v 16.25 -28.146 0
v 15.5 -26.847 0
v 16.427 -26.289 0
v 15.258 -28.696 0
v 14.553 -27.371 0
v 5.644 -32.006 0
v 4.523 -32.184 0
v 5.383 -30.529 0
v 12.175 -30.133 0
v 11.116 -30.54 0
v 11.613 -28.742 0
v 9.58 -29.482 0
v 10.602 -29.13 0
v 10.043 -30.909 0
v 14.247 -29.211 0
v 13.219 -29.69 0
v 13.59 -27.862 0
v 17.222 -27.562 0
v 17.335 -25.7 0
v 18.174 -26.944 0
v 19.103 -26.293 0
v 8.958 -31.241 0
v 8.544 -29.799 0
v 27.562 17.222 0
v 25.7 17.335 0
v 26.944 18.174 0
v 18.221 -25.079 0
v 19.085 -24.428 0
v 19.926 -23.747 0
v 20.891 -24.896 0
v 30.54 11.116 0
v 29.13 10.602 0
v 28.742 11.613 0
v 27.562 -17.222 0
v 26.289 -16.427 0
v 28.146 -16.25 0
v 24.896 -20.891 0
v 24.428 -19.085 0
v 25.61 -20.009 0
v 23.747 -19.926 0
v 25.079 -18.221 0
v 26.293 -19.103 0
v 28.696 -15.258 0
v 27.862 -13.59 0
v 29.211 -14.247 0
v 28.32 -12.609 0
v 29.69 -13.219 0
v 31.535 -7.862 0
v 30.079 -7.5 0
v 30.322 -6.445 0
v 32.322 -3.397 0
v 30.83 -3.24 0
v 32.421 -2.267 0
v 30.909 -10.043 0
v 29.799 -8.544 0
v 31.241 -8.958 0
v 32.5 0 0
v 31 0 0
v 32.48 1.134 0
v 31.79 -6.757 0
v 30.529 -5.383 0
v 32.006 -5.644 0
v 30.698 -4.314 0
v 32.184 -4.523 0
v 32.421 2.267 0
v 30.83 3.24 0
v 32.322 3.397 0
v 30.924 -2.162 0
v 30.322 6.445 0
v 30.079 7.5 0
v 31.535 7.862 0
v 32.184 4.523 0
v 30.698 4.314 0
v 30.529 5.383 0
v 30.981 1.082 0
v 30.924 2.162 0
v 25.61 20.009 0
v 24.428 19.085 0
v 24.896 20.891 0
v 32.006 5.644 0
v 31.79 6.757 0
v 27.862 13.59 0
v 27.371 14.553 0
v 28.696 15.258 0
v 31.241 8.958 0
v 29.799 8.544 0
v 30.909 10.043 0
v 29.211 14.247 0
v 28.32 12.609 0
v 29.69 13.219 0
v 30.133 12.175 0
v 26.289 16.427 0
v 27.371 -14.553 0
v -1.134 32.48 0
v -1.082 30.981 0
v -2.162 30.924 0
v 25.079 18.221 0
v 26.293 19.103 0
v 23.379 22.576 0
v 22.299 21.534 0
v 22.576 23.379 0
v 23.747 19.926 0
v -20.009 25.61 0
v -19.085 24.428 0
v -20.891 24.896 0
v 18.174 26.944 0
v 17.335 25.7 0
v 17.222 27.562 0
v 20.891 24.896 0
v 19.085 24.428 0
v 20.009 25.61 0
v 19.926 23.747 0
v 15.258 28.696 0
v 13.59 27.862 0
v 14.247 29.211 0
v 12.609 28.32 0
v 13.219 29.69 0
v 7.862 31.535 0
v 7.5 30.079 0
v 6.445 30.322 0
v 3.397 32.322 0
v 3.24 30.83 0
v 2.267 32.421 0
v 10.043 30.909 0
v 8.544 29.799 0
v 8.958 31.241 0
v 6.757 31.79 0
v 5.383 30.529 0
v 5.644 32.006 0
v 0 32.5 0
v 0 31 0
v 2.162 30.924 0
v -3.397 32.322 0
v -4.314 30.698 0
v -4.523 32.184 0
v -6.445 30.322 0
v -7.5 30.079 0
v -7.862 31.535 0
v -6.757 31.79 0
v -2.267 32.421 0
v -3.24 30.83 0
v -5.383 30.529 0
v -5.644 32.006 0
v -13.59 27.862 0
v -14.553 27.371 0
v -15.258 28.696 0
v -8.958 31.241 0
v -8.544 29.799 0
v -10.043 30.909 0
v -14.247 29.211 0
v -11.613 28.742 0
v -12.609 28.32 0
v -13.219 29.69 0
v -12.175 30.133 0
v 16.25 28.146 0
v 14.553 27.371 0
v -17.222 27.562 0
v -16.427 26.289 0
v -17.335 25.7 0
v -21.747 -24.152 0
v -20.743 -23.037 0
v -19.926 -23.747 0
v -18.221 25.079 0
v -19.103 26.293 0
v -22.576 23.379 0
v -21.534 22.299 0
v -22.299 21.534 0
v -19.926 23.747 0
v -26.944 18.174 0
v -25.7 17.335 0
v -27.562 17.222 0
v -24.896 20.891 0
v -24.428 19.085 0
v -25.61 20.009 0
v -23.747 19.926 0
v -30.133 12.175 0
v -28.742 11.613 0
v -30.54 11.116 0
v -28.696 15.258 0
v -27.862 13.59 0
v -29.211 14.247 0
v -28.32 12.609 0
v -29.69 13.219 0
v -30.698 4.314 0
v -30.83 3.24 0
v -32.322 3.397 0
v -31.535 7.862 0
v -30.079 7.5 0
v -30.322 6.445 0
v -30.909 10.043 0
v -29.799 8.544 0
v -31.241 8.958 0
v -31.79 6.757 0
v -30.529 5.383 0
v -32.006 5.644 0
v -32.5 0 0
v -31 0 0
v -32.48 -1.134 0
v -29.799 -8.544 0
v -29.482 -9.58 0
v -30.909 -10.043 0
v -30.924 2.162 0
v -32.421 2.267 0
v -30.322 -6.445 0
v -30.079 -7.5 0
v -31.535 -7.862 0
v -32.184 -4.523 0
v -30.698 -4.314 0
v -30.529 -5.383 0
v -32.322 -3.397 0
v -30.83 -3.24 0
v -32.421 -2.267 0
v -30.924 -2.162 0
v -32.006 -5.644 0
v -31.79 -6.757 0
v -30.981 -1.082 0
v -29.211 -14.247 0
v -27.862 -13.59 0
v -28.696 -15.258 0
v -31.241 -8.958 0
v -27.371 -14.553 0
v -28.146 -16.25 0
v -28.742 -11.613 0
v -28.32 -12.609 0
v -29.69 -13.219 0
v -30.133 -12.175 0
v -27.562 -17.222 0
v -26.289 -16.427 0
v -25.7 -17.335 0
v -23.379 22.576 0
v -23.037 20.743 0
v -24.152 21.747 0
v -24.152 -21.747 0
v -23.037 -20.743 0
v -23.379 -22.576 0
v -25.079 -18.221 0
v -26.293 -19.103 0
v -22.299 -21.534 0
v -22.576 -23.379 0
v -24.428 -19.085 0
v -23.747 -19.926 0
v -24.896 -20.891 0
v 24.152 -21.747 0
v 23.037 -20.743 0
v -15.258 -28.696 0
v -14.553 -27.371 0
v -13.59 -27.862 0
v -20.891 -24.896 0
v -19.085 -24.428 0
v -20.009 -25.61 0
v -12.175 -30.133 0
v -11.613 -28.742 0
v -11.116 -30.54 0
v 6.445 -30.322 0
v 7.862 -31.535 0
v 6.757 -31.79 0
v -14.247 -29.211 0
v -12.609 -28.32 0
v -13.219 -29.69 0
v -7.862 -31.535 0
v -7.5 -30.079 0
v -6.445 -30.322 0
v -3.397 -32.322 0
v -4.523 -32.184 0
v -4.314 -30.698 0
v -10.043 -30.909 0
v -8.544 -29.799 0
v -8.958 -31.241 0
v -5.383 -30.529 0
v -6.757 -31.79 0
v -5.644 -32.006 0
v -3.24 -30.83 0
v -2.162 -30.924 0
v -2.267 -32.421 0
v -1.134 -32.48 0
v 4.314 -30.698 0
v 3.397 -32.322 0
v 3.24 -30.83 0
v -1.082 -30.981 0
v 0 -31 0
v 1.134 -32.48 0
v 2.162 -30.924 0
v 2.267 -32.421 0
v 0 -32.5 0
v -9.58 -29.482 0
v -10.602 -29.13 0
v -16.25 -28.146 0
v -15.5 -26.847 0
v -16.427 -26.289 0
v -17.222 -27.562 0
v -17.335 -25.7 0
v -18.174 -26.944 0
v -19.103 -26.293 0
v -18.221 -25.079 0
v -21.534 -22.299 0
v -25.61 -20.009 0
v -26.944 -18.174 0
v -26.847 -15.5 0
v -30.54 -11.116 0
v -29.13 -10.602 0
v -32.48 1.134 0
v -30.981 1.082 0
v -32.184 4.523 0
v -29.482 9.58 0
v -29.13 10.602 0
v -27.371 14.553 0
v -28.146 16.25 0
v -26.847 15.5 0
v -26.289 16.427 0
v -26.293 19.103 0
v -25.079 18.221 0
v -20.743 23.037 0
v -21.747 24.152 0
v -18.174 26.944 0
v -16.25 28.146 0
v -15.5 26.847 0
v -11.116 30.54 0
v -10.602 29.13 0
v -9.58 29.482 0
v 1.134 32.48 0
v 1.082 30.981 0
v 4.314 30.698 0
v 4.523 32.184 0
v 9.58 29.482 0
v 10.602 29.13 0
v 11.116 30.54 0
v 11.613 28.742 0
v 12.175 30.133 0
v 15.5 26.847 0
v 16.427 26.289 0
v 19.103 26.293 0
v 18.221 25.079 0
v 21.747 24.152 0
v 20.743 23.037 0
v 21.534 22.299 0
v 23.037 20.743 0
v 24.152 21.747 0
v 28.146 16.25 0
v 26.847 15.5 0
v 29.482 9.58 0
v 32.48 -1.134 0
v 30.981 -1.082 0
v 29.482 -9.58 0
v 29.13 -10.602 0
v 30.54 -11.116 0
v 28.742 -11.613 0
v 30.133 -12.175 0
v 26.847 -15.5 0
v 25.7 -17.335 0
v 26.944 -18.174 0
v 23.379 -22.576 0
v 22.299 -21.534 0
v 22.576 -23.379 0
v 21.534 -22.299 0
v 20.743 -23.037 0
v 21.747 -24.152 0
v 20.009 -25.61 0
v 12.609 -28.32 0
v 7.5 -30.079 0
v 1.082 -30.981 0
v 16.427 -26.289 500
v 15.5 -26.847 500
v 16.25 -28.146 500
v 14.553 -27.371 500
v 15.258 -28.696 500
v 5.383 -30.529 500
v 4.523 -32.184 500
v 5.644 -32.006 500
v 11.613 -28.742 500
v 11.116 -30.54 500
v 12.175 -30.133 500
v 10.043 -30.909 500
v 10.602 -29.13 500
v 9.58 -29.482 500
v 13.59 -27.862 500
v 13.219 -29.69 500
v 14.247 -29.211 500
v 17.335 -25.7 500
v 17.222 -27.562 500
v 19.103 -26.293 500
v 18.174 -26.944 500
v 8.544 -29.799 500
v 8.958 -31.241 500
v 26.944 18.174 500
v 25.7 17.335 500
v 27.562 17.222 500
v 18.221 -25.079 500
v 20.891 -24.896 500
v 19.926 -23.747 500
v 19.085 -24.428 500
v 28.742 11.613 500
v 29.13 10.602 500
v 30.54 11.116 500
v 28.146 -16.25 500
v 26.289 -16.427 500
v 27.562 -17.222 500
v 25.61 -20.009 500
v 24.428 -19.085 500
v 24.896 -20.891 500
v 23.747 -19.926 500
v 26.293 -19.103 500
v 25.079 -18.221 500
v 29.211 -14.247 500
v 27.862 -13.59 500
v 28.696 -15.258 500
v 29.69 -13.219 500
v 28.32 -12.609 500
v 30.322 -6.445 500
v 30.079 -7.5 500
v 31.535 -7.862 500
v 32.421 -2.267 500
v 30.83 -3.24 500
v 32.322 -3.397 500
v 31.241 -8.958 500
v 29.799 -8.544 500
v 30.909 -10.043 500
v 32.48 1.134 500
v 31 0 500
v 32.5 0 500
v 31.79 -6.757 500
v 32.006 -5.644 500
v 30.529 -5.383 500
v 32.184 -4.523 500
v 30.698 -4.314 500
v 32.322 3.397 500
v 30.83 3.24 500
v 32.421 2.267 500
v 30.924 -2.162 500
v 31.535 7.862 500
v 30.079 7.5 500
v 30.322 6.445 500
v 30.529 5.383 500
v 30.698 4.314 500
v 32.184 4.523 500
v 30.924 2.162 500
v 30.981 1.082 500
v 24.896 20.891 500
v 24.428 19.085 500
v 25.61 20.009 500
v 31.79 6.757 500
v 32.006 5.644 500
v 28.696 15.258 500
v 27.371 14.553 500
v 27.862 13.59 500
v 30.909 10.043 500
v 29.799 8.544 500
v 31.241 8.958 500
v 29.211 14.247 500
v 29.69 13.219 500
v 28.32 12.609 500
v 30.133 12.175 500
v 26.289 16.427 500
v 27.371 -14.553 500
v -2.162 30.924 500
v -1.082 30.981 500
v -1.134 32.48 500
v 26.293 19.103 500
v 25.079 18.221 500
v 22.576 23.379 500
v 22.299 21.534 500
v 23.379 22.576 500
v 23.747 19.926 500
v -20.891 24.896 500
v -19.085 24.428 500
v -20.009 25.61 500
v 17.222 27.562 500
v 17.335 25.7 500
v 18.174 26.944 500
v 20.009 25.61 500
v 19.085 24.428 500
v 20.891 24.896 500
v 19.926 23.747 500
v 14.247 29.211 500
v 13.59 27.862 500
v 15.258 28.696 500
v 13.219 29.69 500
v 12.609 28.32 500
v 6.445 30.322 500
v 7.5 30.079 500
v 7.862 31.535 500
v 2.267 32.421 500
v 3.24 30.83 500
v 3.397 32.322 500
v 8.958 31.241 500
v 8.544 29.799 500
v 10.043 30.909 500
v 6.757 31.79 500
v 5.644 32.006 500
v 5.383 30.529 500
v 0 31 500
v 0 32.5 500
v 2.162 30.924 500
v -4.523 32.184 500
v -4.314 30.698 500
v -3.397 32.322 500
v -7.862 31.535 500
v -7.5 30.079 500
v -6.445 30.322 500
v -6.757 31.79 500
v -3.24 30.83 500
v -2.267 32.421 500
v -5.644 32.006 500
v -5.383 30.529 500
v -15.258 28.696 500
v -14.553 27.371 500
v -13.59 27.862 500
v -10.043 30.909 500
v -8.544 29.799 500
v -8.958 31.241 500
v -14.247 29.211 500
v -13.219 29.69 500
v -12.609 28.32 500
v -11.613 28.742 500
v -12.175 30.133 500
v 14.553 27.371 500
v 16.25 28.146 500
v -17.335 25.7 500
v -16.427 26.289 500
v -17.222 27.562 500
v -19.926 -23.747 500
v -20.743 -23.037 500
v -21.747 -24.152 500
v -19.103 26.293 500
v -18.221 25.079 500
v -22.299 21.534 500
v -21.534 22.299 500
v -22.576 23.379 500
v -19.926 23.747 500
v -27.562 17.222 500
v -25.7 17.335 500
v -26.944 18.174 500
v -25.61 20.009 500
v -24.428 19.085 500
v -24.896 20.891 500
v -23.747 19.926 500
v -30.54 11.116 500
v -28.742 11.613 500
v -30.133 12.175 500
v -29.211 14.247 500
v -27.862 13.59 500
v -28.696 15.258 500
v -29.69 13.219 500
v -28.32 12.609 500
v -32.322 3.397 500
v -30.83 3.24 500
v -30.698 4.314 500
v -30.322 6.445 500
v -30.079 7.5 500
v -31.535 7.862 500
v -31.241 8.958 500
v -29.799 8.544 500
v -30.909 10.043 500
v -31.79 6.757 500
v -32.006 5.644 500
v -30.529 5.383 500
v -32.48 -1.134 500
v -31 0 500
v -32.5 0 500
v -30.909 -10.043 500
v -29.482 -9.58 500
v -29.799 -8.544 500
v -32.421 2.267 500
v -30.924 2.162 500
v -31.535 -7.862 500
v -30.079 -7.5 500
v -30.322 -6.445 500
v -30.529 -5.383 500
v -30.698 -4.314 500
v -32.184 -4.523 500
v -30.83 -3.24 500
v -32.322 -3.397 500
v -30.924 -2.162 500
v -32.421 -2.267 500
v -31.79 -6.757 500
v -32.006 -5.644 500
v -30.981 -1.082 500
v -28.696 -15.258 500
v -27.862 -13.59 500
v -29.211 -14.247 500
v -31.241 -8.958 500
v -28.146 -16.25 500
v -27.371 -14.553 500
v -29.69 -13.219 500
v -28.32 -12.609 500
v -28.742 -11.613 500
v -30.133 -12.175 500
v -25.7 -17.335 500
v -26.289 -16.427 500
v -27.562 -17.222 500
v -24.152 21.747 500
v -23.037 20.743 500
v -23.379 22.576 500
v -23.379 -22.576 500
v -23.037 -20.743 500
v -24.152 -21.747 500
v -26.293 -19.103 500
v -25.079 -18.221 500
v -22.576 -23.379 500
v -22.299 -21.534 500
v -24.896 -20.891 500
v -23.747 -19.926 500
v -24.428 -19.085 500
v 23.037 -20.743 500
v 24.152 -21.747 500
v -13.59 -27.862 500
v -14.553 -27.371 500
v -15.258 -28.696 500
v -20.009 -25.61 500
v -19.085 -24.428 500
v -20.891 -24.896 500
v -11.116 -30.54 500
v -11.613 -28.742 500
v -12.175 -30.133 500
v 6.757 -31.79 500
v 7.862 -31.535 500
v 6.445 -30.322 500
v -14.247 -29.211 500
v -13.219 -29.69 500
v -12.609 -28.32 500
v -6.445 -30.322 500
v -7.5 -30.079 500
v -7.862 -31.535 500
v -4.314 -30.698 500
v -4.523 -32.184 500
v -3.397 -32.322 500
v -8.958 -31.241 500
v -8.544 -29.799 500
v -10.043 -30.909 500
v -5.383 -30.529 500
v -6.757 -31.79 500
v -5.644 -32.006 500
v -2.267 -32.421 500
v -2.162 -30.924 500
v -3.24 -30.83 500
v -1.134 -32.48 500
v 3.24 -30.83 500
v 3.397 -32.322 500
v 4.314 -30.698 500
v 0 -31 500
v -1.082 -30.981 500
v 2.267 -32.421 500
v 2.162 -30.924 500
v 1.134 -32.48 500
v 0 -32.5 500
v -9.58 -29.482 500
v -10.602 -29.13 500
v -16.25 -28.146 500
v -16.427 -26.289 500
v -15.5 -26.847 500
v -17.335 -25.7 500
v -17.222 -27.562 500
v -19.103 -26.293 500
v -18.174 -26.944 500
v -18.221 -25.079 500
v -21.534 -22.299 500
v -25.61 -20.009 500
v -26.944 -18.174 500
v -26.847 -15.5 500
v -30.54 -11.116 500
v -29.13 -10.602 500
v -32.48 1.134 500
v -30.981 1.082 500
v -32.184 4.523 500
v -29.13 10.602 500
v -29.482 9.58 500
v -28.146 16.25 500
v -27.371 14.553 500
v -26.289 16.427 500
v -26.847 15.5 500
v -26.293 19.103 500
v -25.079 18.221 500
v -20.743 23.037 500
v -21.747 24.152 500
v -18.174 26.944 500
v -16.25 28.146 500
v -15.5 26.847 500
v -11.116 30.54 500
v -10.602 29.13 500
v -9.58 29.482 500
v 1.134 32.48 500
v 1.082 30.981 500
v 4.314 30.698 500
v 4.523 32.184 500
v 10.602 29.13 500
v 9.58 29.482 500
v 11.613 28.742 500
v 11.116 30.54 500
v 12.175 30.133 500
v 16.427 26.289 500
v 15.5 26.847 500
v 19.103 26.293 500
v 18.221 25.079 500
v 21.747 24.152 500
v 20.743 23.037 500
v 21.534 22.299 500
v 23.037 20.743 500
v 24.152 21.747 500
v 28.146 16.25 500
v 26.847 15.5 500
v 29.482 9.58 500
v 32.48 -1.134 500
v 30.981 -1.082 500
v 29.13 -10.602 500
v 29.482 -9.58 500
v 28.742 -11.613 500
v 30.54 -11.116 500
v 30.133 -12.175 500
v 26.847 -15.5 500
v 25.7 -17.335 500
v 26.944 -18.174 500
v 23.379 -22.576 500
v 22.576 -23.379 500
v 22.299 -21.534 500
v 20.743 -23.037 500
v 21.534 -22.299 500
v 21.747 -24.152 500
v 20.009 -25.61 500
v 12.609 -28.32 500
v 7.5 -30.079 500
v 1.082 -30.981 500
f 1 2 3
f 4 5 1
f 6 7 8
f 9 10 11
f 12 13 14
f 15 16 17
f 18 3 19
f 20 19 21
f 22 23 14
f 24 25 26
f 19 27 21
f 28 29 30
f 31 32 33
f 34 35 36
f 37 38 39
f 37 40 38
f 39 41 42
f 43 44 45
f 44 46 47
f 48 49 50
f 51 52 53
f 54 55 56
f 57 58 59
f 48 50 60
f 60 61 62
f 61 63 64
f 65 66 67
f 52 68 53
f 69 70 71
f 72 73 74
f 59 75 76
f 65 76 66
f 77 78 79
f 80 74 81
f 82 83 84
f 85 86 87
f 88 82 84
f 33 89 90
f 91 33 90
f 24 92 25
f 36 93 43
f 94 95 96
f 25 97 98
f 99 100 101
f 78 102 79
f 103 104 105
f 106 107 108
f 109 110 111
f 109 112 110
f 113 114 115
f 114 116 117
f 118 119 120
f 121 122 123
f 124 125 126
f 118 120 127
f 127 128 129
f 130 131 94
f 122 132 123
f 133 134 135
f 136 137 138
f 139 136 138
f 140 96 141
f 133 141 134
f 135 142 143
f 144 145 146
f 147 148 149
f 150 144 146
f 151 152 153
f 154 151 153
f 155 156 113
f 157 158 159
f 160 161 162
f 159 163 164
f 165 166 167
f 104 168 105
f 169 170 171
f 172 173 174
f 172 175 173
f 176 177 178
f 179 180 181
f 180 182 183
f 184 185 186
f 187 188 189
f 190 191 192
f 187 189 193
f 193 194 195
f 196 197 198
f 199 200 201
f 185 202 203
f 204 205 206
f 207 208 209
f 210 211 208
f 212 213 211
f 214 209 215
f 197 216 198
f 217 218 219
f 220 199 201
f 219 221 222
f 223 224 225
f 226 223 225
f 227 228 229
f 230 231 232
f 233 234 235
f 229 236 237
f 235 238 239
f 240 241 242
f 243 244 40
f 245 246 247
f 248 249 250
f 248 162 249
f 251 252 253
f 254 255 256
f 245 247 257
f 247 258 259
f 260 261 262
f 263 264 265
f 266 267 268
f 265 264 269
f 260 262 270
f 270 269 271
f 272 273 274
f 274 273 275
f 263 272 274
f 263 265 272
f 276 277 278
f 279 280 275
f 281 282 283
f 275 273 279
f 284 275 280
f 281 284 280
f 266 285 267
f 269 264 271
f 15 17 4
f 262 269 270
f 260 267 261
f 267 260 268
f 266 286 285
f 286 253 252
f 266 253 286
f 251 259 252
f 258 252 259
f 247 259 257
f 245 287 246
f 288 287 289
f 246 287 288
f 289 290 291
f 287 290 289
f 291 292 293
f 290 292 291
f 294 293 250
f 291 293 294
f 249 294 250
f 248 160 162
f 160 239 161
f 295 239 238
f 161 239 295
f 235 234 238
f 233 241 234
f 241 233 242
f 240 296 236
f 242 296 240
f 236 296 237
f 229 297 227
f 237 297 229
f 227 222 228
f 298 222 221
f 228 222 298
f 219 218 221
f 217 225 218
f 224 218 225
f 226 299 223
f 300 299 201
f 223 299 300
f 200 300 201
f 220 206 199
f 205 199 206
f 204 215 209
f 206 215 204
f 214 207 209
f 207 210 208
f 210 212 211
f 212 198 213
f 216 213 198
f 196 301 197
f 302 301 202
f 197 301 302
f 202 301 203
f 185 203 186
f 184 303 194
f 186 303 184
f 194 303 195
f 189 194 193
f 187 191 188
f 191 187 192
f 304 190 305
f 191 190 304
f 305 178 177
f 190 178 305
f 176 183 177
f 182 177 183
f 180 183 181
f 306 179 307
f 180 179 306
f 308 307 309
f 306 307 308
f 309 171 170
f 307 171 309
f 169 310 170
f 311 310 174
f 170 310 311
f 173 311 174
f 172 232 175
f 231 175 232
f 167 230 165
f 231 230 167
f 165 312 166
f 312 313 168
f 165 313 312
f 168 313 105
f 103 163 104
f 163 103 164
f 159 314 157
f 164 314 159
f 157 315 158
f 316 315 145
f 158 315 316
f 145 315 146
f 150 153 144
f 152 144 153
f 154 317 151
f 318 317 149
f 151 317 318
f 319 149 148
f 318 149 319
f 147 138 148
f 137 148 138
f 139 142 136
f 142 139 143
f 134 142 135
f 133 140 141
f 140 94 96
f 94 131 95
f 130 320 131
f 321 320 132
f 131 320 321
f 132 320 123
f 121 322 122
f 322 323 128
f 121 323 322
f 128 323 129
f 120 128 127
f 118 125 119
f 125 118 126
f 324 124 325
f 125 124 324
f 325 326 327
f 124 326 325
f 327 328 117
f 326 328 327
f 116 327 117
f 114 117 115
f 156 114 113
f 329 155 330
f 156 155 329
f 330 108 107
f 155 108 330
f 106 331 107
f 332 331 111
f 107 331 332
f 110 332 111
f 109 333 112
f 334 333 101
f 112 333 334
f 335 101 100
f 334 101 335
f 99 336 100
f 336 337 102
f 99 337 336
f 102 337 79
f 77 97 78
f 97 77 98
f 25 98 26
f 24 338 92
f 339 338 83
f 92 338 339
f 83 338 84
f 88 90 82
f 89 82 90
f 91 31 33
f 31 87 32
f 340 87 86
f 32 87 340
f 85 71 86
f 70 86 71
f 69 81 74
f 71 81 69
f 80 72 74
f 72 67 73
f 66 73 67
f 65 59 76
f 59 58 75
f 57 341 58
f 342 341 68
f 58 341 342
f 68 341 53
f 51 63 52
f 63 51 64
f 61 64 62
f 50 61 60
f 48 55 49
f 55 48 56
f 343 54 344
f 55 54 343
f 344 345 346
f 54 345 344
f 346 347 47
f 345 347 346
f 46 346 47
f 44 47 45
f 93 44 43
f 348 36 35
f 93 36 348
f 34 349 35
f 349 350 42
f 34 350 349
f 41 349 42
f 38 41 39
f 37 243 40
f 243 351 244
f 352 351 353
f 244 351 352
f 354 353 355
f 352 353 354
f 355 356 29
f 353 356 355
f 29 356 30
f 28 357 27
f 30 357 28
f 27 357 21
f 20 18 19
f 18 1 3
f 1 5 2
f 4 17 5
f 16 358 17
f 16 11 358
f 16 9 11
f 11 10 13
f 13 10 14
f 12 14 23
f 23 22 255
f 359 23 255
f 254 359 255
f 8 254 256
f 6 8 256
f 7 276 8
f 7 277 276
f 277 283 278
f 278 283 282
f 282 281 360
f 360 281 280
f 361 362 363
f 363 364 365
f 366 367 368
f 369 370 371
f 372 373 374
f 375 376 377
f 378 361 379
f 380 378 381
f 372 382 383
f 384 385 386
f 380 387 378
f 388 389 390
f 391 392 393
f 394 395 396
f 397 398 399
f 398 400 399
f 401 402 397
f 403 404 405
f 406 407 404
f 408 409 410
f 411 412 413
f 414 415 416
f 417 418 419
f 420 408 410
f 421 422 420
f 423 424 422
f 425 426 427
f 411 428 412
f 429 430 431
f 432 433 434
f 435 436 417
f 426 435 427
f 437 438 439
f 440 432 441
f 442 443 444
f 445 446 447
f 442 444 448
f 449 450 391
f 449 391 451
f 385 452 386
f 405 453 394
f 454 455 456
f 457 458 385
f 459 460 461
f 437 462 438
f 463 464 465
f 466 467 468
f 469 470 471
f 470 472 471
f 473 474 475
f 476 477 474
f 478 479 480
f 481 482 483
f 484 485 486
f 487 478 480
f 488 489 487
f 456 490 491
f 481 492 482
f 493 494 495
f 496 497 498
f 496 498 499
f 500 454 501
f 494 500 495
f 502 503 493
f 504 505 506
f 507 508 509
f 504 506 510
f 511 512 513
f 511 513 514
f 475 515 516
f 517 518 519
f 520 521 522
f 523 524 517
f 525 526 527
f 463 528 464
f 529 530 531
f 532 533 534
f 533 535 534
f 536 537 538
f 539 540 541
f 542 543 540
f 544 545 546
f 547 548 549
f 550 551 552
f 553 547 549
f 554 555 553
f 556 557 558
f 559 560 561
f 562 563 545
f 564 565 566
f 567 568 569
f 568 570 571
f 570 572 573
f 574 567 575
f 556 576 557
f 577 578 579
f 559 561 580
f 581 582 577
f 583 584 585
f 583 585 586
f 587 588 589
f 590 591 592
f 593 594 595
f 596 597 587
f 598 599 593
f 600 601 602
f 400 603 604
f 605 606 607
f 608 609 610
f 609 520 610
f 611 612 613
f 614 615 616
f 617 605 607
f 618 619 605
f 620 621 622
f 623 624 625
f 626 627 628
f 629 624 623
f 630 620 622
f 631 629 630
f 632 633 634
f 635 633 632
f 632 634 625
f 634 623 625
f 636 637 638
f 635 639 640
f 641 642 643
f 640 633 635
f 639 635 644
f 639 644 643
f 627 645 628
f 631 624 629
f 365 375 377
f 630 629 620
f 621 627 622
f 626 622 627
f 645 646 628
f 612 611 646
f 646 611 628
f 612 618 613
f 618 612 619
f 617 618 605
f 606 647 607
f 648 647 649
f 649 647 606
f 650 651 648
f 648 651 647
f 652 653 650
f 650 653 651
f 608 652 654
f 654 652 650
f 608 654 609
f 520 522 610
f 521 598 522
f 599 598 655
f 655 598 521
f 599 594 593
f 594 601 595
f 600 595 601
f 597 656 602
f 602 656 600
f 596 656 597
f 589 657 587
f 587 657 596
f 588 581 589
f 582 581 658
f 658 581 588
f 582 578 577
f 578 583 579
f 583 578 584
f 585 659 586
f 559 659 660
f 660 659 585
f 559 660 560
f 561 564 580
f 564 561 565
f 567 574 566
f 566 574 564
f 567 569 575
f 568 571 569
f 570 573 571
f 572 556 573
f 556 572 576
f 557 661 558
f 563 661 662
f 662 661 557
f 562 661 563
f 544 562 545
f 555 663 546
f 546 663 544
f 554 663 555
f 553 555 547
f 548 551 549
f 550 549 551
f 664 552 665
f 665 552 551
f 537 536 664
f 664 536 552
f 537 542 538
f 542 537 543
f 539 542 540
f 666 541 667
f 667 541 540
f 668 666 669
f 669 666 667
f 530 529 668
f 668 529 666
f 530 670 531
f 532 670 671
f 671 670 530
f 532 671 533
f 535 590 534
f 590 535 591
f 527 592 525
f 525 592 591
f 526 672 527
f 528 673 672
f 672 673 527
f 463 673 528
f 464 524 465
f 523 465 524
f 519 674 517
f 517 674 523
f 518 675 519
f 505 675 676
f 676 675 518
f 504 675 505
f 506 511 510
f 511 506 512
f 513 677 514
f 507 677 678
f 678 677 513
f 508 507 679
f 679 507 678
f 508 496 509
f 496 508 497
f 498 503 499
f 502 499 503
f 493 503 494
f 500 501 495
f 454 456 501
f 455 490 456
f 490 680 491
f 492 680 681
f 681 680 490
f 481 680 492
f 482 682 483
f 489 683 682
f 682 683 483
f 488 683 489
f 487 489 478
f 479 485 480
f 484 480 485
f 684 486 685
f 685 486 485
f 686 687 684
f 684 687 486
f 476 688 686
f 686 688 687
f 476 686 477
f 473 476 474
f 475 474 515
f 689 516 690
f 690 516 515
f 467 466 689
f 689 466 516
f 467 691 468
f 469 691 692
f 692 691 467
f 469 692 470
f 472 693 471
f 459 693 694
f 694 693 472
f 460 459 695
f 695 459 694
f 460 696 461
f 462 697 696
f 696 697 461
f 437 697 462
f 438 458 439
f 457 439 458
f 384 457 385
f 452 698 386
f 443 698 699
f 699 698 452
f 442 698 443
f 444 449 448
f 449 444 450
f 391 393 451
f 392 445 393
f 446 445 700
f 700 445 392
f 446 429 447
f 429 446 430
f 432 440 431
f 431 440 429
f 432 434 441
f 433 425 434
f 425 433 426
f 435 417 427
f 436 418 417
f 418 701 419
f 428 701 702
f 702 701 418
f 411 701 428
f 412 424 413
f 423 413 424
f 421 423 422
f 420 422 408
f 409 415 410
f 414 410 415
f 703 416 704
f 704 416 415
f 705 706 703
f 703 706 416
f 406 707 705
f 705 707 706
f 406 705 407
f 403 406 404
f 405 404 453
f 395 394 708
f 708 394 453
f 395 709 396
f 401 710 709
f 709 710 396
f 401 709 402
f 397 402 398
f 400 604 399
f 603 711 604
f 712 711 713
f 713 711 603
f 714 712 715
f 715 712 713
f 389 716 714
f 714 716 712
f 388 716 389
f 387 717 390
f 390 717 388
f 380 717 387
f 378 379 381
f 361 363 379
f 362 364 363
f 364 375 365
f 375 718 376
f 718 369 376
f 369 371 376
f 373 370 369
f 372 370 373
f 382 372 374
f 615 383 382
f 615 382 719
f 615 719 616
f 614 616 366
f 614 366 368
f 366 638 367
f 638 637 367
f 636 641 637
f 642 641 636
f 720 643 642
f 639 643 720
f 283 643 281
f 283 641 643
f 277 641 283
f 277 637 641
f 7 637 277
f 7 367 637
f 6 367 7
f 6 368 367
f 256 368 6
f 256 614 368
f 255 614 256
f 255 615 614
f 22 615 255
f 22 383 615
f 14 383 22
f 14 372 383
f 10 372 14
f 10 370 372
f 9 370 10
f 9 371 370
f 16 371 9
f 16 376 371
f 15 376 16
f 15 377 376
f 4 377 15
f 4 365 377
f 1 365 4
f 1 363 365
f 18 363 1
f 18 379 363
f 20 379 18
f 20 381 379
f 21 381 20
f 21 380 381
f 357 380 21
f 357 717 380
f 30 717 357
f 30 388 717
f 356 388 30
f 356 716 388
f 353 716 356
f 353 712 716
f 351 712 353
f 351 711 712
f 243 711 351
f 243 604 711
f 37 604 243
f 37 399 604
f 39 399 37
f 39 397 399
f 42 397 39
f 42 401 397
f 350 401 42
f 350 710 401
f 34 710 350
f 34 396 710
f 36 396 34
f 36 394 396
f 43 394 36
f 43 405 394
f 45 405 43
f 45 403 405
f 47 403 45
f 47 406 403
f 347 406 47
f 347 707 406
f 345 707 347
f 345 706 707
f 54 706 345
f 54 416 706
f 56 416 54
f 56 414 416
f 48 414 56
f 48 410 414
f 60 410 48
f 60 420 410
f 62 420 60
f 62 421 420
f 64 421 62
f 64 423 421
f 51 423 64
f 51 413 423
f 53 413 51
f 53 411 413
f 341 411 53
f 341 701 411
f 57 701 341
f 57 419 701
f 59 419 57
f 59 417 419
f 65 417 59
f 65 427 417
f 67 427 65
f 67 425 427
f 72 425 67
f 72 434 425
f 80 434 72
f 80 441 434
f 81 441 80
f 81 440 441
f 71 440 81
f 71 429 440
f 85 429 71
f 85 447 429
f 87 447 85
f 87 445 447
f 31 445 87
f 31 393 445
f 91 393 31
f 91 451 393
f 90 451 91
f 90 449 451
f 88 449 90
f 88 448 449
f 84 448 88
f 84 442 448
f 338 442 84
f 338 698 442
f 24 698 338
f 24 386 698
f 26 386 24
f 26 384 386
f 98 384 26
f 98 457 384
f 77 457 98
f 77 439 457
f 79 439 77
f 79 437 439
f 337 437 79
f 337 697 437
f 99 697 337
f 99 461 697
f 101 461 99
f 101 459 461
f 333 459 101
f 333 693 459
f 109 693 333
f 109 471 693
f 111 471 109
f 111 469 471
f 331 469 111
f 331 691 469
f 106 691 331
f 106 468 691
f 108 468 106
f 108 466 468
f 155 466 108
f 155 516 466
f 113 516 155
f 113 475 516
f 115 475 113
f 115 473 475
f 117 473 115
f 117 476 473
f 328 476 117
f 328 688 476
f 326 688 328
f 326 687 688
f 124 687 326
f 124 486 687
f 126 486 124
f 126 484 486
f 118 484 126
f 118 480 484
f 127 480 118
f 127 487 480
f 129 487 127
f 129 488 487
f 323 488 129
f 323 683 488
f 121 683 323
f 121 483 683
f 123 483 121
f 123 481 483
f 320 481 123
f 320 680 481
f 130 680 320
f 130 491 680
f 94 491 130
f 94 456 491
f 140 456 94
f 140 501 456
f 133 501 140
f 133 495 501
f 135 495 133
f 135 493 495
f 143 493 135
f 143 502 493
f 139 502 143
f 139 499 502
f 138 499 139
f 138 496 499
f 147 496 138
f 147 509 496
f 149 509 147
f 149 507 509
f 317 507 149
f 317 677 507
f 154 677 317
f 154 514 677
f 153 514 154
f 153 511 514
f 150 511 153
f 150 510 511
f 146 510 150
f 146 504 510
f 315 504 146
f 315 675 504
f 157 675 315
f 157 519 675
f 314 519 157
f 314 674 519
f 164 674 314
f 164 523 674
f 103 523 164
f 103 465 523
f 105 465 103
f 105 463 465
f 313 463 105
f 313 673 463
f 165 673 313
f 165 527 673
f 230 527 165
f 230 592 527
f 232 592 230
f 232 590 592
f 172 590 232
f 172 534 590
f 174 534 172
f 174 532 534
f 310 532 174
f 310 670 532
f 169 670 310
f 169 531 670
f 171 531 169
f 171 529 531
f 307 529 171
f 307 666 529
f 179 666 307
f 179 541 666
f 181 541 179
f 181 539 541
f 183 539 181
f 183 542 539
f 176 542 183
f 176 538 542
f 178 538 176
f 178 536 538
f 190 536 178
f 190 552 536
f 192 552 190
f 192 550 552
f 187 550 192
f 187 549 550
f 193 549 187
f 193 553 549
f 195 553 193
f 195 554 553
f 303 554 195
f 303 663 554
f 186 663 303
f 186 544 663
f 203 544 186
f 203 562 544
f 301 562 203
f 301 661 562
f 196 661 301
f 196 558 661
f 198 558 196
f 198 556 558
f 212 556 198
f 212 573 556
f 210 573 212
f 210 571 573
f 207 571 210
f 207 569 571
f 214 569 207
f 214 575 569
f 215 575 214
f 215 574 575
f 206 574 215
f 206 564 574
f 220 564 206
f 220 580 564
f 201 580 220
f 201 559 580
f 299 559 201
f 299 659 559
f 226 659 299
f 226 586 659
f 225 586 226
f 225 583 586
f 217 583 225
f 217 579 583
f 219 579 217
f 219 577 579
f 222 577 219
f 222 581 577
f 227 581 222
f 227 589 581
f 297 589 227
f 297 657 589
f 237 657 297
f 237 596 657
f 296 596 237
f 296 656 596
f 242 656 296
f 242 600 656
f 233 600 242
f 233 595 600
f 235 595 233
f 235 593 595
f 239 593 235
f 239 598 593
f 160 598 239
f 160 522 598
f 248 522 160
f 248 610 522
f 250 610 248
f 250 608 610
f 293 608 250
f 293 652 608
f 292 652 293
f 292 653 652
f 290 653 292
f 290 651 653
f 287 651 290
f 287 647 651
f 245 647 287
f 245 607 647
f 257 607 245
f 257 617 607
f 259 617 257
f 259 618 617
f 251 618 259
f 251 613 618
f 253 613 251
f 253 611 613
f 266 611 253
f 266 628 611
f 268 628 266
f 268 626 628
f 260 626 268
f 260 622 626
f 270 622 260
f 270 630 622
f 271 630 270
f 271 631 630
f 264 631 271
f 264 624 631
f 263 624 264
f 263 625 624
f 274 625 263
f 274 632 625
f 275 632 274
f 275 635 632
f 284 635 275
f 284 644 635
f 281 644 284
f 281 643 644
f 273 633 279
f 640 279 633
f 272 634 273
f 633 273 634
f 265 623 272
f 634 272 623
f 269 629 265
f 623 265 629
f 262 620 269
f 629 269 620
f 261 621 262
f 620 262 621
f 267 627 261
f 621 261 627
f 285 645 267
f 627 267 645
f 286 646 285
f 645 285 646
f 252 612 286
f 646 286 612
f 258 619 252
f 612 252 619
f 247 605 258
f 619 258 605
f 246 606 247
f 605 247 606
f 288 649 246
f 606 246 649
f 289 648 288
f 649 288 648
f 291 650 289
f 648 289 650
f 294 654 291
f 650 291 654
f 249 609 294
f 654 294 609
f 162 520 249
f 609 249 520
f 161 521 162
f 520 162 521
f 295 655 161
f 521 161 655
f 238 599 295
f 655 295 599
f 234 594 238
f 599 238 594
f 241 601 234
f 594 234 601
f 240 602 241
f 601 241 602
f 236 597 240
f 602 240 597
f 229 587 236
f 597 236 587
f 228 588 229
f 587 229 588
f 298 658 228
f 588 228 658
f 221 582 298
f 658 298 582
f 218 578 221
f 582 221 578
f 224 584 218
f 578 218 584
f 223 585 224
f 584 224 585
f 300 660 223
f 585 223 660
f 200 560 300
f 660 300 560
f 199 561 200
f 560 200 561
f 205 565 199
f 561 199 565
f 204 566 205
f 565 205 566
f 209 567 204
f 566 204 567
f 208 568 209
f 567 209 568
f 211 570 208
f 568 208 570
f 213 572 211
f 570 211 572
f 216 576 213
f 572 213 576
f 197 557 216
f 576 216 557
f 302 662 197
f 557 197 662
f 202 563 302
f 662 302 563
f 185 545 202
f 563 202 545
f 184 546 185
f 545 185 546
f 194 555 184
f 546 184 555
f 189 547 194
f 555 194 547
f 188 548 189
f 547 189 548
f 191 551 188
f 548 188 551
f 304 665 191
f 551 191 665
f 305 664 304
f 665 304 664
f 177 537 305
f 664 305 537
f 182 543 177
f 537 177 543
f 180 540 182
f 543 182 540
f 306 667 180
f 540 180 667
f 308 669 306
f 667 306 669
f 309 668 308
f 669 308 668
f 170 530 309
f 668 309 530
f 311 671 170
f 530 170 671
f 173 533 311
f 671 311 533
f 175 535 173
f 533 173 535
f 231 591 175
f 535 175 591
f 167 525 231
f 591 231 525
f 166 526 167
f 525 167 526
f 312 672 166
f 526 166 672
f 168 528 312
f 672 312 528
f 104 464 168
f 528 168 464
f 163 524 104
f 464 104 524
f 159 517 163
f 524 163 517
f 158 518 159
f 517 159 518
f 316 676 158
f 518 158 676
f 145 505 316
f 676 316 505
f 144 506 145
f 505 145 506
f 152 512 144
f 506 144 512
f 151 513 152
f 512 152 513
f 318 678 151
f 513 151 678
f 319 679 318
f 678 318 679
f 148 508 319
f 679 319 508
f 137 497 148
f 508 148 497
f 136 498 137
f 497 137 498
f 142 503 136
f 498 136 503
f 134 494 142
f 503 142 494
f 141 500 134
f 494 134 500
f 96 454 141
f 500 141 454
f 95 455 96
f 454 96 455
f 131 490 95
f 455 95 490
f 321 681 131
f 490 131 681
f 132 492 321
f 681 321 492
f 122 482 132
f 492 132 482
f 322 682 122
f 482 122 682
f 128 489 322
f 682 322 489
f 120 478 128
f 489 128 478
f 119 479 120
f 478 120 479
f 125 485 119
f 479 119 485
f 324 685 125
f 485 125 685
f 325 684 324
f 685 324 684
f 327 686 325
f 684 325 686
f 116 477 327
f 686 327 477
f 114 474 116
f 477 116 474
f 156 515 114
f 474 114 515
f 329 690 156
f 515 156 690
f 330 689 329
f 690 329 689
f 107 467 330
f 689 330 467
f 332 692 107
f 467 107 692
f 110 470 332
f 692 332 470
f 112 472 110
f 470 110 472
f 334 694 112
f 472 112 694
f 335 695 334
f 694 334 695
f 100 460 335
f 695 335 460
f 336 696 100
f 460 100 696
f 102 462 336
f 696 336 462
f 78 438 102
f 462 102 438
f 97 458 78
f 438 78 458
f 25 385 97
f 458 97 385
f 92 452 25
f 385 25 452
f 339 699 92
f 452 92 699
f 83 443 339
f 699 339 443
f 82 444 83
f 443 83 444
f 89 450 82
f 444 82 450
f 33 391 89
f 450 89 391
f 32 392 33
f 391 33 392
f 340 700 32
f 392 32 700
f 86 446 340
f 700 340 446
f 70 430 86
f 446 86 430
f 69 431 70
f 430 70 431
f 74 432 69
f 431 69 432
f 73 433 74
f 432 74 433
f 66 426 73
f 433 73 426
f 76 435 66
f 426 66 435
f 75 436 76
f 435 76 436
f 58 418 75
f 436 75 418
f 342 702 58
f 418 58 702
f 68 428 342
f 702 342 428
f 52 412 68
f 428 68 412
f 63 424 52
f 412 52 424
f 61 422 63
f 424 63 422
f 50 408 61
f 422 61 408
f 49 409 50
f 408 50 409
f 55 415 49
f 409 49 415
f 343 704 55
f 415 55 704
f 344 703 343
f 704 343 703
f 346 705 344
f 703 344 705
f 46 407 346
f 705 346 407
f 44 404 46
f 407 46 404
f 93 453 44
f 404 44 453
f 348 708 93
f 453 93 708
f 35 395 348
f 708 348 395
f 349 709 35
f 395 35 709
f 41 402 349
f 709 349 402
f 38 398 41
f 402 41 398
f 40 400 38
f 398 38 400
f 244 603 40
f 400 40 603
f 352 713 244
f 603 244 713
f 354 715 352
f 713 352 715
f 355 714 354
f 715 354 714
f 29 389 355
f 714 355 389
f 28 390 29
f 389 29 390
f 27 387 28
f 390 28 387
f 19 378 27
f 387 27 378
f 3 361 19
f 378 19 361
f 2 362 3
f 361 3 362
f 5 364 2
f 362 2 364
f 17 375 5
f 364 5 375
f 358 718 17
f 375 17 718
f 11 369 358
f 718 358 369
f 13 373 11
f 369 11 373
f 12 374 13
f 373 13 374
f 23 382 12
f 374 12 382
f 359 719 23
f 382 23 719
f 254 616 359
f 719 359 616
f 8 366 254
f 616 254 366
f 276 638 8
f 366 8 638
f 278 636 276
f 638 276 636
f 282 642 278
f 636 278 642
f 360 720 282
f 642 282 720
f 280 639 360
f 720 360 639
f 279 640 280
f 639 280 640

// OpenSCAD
$fn=180;
linear_extrude(500) difference() {
    circle(d=65);
    offset(-1.5) circle(d=65);
}
